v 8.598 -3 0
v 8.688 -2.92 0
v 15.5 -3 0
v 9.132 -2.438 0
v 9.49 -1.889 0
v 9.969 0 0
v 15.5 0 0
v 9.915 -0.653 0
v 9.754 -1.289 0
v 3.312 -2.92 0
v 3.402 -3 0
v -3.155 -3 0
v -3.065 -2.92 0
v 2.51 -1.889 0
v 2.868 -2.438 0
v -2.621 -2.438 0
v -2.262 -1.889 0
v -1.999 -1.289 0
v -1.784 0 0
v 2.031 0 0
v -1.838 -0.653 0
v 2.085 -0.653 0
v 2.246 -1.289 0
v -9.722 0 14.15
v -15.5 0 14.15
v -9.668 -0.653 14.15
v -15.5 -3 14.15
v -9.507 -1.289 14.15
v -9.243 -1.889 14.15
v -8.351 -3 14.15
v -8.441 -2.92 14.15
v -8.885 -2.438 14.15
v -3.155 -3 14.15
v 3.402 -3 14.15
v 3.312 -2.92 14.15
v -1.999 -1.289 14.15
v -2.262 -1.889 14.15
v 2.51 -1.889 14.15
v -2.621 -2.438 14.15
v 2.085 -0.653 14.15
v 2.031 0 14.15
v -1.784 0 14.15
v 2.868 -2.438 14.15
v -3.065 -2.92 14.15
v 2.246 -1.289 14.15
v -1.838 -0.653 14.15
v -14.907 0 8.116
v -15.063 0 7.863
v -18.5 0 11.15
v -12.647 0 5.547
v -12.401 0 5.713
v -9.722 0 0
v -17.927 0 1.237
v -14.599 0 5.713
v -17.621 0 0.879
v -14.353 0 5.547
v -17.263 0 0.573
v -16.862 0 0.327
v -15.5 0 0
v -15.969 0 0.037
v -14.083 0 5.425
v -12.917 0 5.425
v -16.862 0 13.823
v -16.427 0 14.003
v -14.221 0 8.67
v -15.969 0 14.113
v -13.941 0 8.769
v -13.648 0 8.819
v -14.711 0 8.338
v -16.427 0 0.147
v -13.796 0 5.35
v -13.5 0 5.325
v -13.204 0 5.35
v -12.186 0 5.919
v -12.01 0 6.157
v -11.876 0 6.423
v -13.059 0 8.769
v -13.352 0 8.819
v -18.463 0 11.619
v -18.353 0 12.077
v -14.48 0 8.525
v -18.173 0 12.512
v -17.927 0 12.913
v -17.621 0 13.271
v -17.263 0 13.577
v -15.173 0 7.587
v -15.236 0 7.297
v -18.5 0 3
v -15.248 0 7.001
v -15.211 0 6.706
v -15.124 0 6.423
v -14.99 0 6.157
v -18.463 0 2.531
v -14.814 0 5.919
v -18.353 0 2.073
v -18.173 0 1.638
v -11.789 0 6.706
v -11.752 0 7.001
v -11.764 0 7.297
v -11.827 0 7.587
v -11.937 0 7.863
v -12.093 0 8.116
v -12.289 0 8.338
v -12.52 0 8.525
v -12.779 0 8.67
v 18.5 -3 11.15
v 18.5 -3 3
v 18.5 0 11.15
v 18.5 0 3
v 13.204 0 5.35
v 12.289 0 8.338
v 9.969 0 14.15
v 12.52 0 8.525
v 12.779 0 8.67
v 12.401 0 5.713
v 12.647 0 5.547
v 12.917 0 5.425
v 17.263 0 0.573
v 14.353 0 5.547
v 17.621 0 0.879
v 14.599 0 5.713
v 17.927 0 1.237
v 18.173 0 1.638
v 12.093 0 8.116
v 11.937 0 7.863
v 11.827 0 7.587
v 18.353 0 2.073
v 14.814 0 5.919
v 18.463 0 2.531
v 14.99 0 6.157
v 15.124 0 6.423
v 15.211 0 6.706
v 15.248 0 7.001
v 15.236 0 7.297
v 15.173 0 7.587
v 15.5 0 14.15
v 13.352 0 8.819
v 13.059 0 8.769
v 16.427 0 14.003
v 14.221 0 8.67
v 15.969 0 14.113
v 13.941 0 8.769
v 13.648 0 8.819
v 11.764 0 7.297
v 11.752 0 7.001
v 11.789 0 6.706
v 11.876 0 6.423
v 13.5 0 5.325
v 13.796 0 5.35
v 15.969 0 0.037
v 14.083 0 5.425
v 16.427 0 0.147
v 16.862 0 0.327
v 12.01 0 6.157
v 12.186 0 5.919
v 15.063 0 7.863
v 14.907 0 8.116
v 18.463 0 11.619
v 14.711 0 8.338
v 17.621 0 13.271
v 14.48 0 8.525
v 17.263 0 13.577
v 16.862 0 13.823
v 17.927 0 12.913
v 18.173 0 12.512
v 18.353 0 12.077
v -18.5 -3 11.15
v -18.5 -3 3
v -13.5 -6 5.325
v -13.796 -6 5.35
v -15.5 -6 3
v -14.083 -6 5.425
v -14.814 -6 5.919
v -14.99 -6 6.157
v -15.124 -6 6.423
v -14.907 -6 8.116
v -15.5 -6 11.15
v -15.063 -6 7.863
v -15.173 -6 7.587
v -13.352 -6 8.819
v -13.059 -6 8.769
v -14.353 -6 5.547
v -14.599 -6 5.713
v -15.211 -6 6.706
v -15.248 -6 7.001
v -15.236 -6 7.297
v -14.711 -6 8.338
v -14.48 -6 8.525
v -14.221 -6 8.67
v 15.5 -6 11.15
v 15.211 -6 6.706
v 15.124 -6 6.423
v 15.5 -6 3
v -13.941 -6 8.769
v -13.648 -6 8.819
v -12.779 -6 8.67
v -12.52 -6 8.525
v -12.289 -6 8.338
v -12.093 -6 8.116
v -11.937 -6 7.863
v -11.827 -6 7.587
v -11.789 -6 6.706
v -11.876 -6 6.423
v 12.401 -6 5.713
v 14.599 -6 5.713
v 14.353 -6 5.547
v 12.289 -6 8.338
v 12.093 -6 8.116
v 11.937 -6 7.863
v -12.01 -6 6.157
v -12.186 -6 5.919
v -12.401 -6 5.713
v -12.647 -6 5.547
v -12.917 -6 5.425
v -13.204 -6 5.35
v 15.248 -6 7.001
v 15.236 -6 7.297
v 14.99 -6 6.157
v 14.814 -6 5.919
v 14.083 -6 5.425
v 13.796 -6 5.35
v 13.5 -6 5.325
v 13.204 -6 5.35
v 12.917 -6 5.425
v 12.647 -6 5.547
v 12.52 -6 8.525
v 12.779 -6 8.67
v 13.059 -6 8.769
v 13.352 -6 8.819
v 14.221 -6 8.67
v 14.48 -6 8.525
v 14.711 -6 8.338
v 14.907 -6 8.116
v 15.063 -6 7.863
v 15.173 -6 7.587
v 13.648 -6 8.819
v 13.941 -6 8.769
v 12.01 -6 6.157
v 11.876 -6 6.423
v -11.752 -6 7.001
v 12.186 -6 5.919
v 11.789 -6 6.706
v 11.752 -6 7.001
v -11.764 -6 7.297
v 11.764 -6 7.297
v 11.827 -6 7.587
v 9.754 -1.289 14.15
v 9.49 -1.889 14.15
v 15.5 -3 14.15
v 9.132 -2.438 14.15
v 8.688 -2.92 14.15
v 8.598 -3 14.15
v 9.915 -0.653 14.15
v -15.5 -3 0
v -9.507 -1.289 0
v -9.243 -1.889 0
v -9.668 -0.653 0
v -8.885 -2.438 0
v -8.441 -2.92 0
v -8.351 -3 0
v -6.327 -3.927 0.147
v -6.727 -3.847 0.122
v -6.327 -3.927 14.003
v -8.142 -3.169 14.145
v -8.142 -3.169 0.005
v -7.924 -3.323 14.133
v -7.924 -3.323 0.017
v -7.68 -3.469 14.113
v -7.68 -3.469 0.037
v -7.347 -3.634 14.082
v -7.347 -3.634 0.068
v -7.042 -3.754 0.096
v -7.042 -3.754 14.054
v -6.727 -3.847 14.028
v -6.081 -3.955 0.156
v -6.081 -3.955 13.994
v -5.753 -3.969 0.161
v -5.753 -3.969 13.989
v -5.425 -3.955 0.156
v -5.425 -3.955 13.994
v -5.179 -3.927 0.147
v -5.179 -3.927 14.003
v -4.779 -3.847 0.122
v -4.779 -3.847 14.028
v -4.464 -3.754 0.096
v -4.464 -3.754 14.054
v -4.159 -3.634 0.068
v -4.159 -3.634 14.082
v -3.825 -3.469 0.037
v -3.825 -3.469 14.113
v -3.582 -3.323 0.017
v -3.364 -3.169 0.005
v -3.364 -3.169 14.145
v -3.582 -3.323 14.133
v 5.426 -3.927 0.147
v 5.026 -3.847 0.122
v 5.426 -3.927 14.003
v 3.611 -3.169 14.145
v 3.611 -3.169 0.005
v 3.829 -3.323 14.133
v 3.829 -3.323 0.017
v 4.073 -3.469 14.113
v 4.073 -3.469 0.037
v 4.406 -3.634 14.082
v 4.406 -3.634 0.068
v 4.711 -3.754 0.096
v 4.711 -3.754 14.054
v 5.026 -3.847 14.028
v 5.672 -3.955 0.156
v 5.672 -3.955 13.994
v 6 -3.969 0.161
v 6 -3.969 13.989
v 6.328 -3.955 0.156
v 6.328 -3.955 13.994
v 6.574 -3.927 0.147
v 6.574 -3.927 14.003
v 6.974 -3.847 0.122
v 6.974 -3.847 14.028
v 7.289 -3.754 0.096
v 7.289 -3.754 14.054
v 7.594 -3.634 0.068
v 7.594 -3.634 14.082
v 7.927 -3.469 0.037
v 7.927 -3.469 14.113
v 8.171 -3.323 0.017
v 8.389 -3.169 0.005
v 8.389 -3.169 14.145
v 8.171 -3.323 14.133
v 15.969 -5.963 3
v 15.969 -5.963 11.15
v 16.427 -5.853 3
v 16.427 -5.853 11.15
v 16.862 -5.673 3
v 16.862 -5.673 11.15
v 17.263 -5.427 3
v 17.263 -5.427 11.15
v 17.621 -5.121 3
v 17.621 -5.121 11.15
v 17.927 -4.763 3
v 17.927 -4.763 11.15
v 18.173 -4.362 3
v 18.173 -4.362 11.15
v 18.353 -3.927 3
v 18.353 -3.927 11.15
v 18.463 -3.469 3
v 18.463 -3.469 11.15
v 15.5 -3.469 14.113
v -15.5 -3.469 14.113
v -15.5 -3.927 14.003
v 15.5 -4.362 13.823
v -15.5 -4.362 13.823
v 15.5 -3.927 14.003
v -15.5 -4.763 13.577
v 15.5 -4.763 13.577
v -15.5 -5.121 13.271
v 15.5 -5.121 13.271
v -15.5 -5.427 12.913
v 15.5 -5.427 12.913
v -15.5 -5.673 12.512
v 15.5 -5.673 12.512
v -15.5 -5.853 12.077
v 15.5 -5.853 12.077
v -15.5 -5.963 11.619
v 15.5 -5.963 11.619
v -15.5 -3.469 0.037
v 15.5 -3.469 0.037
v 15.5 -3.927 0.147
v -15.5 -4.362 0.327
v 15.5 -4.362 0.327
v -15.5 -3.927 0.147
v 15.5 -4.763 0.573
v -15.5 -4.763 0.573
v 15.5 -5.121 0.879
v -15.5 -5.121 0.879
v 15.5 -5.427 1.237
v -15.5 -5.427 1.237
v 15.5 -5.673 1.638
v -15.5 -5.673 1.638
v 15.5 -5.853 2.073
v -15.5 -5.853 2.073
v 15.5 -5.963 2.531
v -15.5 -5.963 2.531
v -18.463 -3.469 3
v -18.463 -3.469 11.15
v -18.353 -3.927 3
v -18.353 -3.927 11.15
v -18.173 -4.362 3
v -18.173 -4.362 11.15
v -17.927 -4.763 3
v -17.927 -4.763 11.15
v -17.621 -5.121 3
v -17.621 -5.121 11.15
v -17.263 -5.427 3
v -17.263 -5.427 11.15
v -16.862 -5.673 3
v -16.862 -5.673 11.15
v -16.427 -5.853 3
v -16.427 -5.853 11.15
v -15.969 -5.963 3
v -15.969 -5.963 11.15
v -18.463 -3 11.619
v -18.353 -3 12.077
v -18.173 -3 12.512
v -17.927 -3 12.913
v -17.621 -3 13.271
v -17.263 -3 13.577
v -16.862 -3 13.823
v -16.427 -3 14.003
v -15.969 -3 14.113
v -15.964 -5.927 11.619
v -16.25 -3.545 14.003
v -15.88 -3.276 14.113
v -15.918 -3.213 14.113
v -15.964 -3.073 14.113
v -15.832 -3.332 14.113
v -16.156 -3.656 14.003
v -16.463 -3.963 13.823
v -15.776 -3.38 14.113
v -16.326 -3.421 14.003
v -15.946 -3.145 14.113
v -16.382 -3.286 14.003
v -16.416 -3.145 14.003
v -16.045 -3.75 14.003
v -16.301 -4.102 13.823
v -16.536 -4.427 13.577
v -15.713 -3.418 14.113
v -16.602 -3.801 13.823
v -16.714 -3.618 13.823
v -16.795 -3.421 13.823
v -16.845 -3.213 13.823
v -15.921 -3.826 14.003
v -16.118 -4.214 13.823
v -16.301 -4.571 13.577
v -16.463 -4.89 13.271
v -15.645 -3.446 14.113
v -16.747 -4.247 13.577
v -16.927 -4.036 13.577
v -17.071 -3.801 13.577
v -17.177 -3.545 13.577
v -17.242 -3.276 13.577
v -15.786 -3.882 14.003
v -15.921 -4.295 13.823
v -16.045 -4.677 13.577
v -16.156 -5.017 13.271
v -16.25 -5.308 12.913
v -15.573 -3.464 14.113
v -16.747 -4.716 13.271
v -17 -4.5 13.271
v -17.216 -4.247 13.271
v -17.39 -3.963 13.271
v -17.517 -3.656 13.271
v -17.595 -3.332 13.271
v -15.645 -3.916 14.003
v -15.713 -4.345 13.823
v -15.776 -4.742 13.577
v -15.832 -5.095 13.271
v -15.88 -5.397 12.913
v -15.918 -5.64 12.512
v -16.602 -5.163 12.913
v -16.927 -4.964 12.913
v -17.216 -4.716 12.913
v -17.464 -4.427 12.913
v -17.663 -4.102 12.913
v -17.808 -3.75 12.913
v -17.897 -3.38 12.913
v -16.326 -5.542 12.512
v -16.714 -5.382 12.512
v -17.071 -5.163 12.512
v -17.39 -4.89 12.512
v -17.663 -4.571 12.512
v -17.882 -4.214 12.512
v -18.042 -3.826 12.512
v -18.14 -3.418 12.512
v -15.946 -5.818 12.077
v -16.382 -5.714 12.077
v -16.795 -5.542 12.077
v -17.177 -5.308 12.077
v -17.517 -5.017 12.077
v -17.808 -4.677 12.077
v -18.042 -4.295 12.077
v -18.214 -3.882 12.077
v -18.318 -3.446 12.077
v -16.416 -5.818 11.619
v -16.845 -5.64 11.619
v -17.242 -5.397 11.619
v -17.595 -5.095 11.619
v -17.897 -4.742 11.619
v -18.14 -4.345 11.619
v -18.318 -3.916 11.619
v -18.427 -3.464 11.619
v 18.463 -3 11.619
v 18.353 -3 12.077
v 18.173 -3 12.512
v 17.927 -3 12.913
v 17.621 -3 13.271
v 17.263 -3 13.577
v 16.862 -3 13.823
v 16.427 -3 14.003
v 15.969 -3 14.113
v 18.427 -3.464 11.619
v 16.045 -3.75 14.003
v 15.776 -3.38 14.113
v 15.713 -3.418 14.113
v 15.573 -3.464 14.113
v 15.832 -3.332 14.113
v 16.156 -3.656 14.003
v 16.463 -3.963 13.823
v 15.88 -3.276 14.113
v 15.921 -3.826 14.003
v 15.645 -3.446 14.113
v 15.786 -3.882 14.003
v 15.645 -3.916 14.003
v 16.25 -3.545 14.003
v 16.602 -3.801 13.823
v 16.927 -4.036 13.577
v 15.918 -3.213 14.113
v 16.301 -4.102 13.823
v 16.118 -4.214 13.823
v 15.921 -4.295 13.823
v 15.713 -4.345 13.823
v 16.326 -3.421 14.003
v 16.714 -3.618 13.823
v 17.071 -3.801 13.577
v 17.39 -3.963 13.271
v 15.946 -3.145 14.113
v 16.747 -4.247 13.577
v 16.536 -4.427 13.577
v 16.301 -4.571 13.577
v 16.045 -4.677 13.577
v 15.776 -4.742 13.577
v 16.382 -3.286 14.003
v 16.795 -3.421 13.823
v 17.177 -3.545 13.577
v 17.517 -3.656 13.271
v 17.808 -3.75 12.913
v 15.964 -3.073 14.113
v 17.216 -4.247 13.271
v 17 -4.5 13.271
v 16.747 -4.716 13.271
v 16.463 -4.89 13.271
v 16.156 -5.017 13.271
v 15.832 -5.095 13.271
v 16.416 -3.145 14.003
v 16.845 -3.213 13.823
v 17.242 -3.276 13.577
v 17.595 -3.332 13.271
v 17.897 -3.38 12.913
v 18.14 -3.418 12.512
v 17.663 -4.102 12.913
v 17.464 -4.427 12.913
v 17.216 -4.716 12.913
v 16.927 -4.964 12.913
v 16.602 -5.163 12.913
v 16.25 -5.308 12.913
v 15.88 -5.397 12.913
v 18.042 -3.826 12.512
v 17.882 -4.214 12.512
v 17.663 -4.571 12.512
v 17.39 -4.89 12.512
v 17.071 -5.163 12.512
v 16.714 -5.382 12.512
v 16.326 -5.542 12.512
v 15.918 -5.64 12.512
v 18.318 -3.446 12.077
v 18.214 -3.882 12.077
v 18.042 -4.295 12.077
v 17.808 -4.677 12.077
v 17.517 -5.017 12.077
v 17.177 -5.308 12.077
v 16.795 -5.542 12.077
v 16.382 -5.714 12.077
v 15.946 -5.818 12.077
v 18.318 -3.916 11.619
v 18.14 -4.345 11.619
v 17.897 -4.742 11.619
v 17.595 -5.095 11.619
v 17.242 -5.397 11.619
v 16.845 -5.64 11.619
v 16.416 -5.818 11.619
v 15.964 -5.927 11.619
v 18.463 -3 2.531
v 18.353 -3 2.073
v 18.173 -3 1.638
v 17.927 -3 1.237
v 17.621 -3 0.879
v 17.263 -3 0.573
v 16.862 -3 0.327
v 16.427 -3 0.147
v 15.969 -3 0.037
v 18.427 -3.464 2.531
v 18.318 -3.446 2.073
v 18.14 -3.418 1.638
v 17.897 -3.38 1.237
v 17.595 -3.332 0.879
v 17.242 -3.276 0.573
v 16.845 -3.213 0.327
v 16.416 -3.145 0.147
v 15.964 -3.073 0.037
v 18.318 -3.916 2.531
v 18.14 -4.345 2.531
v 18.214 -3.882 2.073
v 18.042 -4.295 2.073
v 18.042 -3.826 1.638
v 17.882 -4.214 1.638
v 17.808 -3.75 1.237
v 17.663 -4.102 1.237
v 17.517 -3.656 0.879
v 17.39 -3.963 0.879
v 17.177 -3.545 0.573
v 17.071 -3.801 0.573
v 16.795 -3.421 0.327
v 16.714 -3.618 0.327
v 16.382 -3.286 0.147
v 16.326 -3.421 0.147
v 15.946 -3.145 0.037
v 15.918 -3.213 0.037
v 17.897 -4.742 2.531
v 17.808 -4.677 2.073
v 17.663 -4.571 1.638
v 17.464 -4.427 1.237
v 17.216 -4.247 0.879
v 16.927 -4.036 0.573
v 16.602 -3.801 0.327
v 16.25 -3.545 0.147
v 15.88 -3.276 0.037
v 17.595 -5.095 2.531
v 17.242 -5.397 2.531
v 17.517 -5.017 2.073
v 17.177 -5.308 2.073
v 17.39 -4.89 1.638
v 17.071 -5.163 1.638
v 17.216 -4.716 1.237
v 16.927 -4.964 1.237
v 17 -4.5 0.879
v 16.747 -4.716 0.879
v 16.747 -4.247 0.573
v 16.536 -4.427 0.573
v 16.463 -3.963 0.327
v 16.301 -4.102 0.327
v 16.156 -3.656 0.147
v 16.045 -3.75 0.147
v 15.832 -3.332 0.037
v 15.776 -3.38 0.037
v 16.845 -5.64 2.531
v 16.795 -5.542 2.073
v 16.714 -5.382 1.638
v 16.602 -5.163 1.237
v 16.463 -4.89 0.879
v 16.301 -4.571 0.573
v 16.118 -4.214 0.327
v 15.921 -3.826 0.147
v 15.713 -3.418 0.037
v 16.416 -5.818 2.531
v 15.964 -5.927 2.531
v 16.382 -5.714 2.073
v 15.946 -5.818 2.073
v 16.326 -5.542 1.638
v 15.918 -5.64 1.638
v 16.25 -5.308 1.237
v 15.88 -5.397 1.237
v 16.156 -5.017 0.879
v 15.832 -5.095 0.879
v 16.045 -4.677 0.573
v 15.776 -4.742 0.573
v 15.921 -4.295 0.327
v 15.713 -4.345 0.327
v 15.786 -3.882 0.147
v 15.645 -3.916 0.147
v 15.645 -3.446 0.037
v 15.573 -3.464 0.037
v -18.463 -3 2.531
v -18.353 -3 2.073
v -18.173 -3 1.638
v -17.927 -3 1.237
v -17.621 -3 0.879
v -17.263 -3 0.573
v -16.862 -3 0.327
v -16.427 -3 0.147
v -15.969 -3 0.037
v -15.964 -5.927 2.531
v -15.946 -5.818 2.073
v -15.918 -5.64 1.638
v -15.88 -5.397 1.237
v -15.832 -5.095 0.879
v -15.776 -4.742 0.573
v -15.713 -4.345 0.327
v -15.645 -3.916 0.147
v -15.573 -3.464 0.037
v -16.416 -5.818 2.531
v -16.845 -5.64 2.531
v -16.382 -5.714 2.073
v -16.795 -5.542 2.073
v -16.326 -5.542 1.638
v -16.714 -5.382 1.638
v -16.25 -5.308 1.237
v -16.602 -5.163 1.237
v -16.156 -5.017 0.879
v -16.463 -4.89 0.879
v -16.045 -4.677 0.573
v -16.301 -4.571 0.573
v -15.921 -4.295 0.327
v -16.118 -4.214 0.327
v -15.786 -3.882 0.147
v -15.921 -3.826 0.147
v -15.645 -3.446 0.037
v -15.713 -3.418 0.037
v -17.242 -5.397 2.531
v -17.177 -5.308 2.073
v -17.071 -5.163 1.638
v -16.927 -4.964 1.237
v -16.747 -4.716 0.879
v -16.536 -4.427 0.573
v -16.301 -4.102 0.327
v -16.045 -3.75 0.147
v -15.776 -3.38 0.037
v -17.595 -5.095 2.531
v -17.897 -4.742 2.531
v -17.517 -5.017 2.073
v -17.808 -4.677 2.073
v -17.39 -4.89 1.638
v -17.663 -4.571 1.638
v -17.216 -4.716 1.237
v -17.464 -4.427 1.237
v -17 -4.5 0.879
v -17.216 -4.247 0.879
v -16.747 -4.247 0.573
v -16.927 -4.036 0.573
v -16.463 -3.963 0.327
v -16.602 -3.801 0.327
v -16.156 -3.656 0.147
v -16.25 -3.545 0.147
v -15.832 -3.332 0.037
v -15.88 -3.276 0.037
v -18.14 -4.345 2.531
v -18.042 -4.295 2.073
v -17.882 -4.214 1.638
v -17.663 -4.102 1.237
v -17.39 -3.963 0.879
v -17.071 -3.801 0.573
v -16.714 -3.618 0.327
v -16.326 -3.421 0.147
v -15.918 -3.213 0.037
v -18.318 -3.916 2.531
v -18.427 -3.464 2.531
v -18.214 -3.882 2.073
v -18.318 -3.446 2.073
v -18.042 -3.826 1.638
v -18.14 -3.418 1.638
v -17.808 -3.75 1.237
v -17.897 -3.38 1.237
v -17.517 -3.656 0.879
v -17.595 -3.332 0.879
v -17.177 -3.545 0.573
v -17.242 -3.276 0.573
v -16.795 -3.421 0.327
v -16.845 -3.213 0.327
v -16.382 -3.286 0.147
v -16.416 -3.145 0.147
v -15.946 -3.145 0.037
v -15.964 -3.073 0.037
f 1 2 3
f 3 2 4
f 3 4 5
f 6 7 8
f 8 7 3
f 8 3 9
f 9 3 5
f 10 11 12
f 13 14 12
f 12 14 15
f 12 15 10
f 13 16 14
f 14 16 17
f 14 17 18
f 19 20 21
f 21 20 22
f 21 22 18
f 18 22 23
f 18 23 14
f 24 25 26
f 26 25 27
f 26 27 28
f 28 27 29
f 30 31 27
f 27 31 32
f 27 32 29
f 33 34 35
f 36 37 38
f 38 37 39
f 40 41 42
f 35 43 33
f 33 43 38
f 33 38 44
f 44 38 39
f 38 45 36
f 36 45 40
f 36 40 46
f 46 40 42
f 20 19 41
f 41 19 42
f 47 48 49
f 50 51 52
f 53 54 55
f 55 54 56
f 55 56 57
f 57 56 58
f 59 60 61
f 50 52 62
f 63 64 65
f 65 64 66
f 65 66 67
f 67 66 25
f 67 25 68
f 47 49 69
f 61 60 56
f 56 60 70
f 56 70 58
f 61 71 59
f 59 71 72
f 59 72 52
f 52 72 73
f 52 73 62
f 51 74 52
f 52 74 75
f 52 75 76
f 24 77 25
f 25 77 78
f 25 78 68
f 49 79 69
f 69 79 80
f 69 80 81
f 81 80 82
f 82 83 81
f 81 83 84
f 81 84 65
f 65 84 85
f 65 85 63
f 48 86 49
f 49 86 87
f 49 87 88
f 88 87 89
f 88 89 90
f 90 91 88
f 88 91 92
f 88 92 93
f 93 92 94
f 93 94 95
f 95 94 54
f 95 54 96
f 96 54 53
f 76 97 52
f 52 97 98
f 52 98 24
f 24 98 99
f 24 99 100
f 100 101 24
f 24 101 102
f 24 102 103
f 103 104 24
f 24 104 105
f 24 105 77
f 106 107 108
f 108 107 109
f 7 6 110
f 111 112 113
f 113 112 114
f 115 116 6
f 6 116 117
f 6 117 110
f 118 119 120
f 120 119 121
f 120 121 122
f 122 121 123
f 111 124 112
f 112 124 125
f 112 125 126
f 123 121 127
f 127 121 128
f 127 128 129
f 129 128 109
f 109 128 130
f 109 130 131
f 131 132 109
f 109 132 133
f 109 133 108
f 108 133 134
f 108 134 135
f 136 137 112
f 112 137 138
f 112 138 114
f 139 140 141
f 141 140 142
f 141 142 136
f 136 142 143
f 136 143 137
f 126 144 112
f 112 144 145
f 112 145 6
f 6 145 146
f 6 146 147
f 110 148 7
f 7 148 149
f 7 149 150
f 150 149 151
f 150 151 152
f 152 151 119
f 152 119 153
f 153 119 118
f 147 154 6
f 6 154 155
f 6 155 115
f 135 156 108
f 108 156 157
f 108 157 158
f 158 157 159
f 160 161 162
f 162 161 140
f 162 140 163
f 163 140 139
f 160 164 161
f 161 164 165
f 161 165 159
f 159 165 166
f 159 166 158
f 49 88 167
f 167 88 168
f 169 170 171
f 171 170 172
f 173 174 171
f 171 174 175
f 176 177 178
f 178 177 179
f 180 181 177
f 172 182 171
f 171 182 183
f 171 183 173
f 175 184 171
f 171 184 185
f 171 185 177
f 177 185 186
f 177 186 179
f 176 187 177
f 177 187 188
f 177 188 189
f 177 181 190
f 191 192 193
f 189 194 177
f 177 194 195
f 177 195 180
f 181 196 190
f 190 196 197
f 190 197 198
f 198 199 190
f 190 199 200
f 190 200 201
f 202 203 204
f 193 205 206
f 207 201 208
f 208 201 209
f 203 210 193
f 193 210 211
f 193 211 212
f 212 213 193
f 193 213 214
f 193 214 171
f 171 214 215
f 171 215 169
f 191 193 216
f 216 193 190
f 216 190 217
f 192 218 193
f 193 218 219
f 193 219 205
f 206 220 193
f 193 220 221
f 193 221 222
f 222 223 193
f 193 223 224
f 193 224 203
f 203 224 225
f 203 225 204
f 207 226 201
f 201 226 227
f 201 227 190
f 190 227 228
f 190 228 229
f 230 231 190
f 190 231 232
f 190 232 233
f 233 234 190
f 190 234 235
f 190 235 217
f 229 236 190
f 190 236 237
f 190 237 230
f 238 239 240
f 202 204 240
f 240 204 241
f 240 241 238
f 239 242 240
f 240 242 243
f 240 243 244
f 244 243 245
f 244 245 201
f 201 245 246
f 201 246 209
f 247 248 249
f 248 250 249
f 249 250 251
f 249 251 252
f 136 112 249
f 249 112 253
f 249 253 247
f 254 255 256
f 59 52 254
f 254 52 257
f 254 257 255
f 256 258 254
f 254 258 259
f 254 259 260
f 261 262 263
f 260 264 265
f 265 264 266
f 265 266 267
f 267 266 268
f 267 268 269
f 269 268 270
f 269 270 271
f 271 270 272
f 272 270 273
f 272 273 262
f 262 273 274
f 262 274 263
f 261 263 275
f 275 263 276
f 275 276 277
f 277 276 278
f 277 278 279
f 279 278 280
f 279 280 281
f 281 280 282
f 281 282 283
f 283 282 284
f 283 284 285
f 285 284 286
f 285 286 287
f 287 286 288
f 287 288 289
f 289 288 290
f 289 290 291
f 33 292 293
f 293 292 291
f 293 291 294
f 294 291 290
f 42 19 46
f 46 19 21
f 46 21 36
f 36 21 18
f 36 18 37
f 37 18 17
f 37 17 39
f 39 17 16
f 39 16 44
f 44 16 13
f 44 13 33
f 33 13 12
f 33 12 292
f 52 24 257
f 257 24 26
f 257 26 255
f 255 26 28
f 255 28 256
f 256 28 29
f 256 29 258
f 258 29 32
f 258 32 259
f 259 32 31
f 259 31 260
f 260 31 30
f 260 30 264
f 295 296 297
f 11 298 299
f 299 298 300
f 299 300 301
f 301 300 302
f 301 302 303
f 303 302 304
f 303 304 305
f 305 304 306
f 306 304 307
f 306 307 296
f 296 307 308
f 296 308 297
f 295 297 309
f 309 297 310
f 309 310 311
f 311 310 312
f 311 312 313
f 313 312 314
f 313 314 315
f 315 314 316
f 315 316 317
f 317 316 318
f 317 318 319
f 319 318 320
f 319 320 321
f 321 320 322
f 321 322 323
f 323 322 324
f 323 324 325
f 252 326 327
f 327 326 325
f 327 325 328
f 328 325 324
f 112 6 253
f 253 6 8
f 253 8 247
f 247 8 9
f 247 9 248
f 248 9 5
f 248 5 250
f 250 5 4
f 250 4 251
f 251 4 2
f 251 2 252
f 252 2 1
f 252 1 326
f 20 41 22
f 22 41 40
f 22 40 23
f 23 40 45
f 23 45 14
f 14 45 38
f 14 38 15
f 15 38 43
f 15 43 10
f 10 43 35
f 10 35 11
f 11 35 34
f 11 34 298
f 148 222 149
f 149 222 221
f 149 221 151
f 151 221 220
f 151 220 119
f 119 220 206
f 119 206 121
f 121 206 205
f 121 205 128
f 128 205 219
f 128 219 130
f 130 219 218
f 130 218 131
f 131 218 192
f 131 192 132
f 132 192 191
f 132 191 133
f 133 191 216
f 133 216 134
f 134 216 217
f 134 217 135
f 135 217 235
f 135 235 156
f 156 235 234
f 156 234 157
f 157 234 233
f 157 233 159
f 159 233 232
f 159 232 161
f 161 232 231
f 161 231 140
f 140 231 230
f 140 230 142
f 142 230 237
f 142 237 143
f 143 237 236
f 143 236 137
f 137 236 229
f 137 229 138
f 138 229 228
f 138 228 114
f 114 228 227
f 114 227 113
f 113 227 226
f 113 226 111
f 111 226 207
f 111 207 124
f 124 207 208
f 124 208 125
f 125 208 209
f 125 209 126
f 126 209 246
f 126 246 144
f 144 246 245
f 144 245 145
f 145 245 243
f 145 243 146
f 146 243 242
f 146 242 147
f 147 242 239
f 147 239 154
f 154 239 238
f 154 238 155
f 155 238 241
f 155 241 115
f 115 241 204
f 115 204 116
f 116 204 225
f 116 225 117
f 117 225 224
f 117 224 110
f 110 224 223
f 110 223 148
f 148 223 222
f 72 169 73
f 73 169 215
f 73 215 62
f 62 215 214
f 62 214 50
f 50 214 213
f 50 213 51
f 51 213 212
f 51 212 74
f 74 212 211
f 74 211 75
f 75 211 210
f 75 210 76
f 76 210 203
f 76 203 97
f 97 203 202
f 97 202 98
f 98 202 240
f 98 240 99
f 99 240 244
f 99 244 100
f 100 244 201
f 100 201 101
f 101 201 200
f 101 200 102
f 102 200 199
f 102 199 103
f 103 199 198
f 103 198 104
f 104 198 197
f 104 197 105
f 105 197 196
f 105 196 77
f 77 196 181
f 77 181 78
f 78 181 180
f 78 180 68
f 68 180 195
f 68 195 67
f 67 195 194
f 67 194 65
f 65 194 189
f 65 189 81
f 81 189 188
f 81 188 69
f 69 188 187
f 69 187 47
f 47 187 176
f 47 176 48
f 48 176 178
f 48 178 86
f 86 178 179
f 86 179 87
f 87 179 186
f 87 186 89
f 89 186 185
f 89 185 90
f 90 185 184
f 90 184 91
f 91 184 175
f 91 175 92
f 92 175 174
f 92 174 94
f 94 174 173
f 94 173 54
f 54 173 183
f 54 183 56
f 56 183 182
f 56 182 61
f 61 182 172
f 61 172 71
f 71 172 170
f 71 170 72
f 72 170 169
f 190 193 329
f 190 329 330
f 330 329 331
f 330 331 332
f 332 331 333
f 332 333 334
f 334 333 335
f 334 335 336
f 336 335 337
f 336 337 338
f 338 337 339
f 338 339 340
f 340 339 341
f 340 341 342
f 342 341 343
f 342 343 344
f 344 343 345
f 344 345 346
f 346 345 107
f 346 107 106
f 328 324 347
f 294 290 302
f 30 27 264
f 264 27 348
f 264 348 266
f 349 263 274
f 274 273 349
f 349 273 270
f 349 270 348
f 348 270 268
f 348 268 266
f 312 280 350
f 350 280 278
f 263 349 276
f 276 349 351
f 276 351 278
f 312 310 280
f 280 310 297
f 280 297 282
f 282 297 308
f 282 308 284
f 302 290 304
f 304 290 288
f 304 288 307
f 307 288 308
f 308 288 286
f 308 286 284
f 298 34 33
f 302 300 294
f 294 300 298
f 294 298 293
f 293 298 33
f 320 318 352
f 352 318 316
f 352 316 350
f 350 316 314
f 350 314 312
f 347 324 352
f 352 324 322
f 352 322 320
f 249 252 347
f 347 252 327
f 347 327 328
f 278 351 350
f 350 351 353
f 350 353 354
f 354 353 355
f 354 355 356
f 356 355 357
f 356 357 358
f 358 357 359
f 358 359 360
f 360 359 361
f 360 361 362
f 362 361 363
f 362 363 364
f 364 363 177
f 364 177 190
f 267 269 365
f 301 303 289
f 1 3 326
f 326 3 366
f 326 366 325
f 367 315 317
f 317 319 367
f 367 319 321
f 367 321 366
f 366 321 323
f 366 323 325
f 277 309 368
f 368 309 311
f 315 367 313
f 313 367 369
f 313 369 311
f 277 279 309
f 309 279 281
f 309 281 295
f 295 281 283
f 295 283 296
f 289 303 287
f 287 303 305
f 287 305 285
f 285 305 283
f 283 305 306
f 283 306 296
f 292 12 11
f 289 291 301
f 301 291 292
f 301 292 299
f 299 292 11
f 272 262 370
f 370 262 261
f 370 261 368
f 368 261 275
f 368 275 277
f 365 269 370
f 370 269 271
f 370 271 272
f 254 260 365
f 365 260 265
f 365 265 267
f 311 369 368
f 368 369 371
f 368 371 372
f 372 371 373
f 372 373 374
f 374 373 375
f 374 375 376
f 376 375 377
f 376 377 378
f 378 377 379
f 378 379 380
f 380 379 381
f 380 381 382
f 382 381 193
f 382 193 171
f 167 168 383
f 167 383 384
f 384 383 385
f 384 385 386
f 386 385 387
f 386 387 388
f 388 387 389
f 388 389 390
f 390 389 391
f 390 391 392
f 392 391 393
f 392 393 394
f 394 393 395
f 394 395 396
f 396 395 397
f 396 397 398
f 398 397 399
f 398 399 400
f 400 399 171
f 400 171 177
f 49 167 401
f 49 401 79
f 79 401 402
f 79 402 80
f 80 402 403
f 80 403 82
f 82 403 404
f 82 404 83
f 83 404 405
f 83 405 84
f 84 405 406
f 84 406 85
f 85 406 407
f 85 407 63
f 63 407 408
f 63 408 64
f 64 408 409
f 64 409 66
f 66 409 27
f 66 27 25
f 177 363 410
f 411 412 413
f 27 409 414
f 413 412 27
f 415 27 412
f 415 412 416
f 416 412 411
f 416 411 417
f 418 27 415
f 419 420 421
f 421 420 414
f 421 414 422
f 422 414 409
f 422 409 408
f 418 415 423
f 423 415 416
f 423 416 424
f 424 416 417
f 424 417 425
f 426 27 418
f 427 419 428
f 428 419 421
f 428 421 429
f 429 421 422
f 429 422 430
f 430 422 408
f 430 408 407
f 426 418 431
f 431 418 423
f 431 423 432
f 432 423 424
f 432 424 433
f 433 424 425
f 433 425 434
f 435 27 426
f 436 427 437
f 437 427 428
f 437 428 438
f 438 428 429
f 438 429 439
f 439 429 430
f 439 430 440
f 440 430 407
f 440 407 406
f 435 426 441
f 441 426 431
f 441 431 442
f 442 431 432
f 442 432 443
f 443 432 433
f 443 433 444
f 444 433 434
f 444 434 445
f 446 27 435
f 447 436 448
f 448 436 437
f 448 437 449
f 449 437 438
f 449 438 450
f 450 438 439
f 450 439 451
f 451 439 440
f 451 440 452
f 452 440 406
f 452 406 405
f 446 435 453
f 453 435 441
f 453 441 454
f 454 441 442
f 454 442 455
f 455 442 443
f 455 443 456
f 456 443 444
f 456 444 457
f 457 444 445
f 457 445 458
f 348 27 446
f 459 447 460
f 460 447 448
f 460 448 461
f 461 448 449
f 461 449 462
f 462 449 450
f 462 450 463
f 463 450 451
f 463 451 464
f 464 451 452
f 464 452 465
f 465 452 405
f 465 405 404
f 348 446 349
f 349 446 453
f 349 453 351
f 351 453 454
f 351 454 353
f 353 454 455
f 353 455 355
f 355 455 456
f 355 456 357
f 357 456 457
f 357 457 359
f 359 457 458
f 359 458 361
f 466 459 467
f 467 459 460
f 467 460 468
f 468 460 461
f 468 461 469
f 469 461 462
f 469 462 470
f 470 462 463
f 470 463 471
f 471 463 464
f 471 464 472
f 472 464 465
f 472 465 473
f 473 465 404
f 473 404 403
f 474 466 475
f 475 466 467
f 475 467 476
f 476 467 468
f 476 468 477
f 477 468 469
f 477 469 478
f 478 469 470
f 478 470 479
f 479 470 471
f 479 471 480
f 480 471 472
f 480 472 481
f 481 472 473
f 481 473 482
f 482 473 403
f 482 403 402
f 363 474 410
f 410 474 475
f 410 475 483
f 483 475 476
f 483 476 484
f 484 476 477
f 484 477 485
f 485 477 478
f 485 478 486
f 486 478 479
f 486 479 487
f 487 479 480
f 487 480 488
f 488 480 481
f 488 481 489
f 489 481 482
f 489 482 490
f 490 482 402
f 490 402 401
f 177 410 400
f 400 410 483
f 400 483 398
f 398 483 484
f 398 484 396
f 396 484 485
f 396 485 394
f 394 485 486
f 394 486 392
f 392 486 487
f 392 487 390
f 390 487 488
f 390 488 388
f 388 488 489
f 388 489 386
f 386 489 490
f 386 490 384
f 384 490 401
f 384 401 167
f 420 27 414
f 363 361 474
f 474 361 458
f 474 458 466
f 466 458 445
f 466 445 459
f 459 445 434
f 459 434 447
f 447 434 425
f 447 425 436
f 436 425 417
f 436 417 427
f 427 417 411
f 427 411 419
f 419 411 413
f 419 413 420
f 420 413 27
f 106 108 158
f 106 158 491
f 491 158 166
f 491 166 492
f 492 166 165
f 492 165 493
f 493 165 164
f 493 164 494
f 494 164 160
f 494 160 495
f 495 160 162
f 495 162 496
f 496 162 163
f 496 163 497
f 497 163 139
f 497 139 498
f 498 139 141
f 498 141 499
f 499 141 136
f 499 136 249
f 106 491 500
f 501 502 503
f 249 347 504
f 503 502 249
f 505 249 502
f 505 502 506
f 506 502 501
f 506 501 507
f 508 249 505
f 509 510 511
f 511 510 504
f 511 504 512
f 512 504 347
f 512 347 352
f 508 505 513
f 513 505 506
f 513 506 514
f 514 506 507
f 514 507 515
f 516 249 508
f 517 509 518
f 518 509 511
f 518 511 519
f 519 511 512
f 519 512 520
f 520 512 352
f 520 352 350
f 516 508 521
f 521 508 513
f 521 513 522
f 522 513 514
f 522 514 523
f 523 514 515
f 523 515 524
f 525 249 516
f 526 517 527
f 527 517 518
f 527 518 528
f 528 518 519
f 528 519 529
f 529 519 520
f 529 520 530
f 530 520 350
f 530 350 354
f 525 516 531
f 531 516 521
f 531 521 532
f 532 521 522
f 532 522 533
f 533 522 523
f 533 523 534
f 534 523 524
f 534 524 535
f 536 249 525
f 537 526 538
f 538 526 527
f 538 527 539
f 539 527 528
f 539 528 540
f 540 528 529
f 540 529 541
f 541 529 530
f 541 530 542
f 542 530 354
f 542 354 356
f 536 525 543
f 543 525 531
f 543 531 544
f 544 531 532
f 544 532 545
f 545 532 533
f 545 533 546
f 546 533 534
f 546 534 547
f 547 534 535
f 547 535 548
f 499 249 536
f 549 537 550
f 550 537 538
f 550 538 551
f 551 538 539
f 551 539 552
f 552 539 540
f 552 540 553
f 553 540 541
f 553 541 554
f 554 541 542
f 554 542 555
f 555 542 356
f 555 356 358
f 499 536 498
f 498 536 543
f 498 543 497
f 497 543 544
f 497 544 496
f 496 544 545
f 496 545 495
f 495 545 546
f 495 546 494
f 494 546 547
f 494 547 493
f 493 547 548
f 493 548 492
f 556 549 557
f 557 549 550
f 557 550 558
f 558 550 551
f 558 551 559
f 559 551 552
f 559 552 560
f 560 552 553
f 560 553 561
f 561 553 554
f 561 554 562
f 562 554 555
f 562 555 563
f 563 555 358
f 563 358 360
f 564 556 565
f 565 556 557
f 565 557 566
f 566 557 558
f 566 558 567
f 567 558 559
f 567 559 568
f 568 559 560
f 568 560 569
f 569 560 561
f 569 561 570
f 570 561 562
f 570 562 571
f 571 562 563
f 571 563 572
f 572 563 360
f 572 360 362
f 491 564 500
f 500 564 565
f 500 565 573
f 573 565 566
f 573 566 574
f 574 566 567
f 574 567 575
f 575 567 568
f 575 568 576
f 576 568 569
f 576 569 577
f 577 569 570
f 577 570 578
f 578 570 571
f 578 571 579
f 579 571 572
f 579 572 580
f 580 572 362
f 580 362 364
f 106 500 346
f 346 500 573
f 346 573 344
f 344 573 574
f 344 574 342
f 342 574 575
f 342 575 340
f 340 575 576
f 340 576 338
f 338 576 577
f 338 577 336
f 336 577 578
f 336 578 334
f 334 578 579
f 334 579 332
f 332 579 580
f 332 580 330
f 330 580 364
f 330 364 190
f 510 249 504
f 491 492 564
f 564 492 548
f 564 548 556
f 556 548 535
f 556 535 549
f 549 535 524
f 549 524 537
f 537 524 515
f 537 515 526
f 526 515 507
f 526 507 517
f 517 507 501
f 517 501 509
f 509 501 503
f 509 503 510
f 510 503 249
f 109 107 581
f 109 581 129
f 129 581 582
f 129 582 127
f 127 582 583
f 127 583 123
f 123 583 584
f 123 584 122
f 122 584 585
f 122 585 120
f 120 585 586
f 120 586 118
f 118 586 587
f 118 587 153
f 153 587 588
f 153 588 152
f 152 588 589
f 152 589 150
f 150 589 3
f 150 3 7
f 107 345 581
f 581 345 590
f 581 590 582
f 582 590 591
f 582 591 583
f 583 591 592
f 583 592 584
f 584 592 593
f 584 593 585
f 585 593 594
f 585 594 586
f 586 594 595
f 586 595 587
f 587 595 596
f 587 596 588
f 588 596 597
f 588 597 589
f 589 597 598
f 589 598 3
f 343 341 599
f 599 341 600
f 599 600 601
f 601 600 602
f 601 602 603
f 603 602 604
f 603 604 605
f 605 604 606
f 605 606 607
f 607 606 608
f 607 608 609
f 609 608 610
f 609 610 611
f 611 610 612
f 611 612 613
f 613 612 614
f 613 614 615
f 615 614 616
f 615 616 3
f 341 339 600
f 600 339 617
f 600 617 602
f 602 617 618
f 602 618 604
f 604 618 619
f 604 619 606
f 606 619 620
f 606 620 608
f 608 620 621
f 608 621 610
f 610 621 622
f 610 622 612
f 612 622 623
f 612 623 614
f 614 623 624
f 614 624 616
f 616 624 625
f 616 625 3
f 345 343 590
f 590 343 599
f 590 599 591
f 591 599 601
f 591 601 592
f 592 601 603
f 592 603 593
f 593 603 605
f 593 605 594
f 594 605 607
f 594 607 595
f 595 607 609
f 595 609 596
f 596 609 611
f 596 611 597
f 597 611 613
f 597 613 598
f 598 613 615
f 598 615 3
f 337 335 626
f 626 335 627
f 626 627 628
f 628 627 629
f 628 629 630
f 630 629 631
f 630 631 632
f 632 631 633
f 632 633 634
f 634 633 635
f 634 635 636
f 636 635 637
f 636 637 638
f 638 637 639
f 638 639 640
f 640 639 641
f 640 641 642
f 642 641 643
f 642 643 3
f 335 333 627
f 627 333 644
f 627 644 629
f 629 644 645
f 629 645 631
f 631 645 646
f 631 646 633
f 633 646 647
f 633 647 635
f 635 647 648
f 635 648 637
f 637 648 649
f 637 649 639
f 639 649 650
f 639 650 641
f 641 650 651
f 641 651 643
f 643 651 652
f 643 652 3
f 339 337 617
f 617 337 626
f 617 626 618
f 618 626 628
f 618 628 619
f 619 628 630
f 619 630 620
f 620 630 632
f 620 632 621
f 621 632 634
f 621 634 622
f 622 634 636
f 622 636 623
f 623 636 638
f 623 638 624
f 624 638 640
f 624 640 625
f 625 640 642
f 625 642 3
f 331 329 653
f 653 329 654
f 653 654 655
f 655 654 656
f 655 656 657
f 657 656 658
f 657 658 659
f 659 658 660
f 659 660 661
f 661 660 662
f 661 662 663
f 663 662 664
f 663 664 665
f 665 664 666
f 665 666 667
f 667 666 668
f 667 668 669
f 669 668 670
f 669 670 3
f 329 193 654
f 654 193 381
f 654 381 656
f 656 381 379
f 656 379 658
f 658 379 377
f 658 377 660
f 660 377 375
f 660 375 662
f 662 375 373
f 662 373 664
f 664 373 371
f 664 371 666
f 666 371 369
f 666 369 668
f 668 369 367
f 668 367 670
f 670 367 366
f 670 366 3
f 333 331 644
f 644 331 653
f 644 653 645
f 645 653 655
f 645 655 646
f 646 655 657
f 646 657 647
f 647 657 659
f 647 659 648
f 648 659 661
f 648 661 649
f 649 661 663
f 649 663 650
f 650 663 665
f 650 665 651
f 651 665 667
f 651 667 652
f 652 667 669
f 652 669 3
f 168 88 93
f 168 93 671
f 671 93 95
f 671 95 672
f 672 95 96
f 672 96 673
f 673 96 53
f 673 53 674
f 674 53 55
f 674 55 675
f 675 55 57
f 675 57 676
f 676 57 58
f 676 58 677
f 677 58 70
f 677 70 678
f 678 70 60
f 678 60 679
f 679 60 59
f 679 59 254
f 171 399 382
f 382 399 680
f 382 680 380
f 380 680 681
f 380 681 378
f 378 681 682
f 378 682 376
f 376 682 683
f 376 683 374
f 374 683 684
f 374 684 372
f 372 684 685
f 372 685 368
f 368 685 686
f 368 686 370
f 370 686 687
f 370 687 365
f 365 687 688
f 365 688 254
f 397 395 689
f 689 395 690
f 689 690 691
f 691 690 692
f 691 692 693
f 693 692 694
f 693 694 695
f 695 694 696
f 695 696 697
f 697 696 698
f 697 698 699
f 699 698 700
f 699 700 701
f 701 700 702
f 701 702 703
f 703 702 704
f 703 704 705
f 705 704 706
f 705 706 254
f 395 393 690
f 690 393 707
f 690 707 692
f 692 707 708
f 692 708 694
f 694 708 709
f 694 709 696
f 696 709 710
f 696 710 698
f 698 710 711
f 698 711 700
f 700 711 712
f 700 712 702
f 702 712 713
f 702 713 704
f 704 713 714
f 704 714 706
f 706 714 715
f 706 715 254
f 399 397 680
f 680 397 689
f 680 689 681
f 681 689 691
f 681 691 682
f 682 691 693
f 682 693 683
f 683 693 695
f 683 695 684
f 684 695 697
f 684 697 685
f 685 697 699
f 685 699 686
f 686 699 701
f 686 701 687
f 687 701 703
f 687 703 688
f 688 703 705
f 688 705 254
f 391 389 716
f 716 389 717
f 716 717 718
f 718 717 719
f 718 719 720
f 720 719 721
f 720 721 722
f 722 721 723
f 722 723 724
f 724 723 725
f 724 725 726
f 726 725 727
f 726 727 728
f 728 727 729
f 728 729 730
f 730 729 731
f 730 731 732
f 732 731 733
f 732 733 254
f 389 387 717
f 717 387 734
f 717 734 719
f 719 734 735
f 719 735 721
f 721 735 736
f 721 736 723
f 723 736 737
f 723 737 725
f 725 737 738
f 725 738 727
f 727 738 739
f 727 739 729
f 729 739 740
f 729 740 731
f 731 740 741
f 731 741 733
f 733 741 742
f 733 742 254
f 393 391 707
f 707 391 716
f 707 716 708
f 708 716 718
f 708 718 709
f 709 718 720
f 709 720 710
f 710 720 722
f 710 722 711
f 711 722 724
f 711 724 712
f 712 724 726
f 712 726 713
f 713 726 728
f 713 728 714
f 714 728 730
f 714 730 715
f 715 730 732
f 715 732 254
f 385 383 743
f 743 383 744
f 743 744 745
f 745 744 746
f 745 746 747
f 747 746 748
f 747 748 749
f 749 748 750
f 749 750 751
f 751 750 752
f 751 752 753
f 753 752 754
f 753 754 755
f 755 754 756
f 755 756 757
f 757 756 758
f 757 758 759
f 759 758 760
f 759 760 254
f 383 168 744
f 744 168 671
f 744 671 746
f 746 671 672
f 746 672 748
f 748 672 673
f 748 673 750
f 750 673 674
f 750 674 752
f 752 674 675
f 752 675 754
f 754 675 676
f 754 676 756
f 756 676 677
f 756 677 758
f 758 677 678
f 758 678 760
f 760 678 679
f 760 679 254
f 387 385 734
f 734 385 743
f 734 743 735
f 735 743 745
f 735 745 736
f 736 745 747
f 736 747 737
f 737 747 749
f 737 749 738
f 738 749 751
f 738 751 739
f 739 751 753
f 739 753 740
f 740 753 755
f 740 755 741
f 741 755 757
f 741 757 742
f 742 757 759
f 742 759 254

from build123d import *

# Parameters (mm, degrees)
ESBO_O1_W                = 37
ESBO_O1_H                = 6
RESSALTO_EXTRUS_O1_DEPTH = 14.15
ESBO_O2_R                = 3.96875
CORTE_EXTRUS_O1_DEPTH    = 25.051455257
ESBO_O3_R                = 1.75
CORTE_EXTRUS_O2_DEPTH    = 13
FILETE2_R                = 3
FILETE3_R                = 3


with BuildPart() as part:
    # Esboço1 → Ressalto-extrusão1 (new body)
    with BuildSketch(Plane.XY):
        with Locations((0, -3)):
            Rectangle(ESBO_O1_W, ESBO_O1_H)
    extrude(amount=RESSALTO_EXTRUS_O1_DEPTH)

    # Esboço2 → Corte-extrusão1 (cut, through all)
    with BuildSketch(Plane(origin=(0, 0, 0), x_dir=(-1, 0, 0), z_dir=(0, 0, -1))):
        with Locations((-6, 0)):
            Circle(ESBO_O2_R)
        with Locations((5.752883735, 0)):
            Circle(ESBO_O2_R)
    extrude(amount=-CORTE_EXTRUS_O1_DEPTH, mode=Mode.SUBTRACT)

    # Esboço3 → Corte-extrusão2 (cut)
    with BuildSketch(Plane.XZ.offset(6)):
        with Locations(Location((-13.5, 7.075, 0), (0, 0, 270))):
            Circle(ESBO_O3_R)
        with Locations(Location((13.5, 7.075, 0), (0, 0, 270))):
            Circle(ESBO_O3_R)
    extrude(amount=-CORTE_EXTRUS_O2_DEPTH, mode=Mode.SUBTRACT)

    # Filete2
    # the kernel refuses this fillet: 3 mm, written as the material it takes off along each edge
    with BuildSketch(Plane(origin=(-26, -6, 0), x_dir=(0, 1, 0), z_dir=(1, 0, 0))) as filete2_piece_1:
        with BuildLine():
            CenterArc((FILETE2_R, FILETE2_R), FILETE2_R, 180, 90)
            Line((0, FILETE2_R), (0, 0))
            Line((0, 0), (FILETE2_R, 0))
        make_face()
    extrude(amount=52, mode=Mode.SUBTRACT)
    with BuildSketch(Plane(origin=(-26, -6, 14.15), x_dir=(0, 1, 0), z_dir=(1, 0, 0))) as filete2_piece_2:
        with BuildLine():
            CenterArc((FILETE2_R, -FILETE2_R), FILETE2_R, 90, 90)
            Line((0, -FILETE2_R), (0, 0))
            Line((0, 0), (FILETE2_R, 0))
        make_face()
    extrude(amount=52, mode=Mode.SUBTRACT)
    with BuildSketch(Plane(origin=(-18.5, -6, -7.5), x_dir=(1, 0, 0), z_dir=(0, 0, 1)), Plane(origin=(18.5, -6, -7.5), x_dir=(0, 1, 0), z_dir=(0, 0, 1))) as filete2_piece_3:
        with BuildLine():
            CenterArc((FILETE2_R, FILETE2_R), FILETE2_R, 180, 90)
            Line((0, FILETE2_R), (0, 0))
            Line((0, 0), (FILETE2_R, 0))
        make_face()
    extrude(amount=29.15, mode=Mode.SUBTRACT)

    # Filete3
    # the kernel refuses this fillet: 3 mm, written as the material it takes off along each edge
    with BuildSketch(Plane(origin=(15.5, -3, 11.15), x_dir=(0, 0, 1), z_dir=(1, 0, 0))) as filete3_piece_1_section:
        Polygon((0, 0), (FILETE3_R, 0), (FILETE3_R, FILETE3_R), (0, FILETE3_R), align=None)
    filete3_piece_1 = extrude(amount=FILETE3_R, mode=Mode.PRIVATE)
    filete3_piece_1 = filete3_piece_1 - Plane(origin=(15.5, -3, 11.15), x_dir=(0, 0.7071067811865475, -0.7071067811865475), z_dir=(1, 0, 0)) * Sphere(FILETE3_R, mode=Mode.PRIVATE)
    add(filete3_piece_1, mode=Mode.SUBTRACT)
    with BuildSketch(Plane(origin=(15.5, -3, 3), x_dir=(1, 0, 0), z_dir=(0, 0, -1))) as filete3_piece_2_section:
        Polygon((0, 0), (FILETE3_R, 0), (FILETE3_R, FILETE3_R), (0, FILETE3_R), align=None)
    filete3_piece_2 = extrude(amount=FILETE3_R, mode=Mode.PRIVATE)
    filete3_piece_2 = filete3_piece_2 - Plane(origin=(15.5, -3, 3), x_dir=(-0.7071067811865472, 0.7071067811865477, 0), z_dir=(0, 0, -1)) * Sphere(FILETE3_R, mode=Mode.PRIVATE)
    add(filete3_piece_2, mode=Mode.SUBTRACT)
    with BuildSketch(Plane(origin=(-15.5, -3, 11.15), x_dir=(-1, 0, 0), z_dir=(0, 0, 1))) as filete3_piece_3_section:
        Polygon((0, 0), (FILETE3_R, 0), (FILETE3_R, FILETE3_R), (0, FILETE3_R), align=None)
    filete3_piece_3 = extrude(amount=FILETE3_R, mode=Mode.PRIVATE)
    filete3_piece_3 = filete3_piece_3 - Plane(origin=(-15.5, -3, 11.15), x_dir=(0.7071067811865472, 0.7071067811865477, 0), z_dir=(0, 0, 1)) * Sphere(FILETE3_R, mode=Mode.PRIVATE)
    add(filete3_piece_3, mode=Mode.SUBTRACT)
    with BuildSketch(Plane(origin=(-15.5, -3, 3), x_dir=(-1, 0, 0), z_dir=(0, 0, -1))) as filete3_piece_4_section:
        Polygon((0, 0), (FILETE3_R, 0), (FILETE3_R, -FILETE3_R), (0, -FILETE3_R), align=None)
    filete3_piece_4 = extrude(amount=FILETE3_R, mode=Mode.PRIVATE)
    filete3_piece_4 = filete3_piece_4 - Plane(origin=(-15.5, -3, 3), x_dir=(0.7071067811865472, 0.7071067811865477, 0), z_dir=(0, 0, -1)) * Sphere(FILETE3_R, mode=Mode.PRIVATE)
    add(filete3_piece_4, mode=Mode.SUBTRACT)
    with BuildSketch(Plane(origin=(18.5, -3, 14.15), x_dir=(0, 0, -1), z_dir=(0, 1, 0)), Plane(origin=(-18.5, 7.5, 0), x_dir=(1, 0, 0), z_dir=(0, -1, 0)), Plane(origin=(18.5, -3, 0), x_dir=(-1, 0, 0), z_dir=(0, 1, 0))) as filete3_piece_5:
        with BuildLine():
            CenterArc((FILETE3_R, FILETE3_R), FILETE3_R, 180, 90)
            Line((0, FILETE3_R), (0, 0))
            Line((0, 0), (FILETE3_R, 0))
        make_face()
    extrude(amount=10.5, mode=Mode.SUBTRACT)
    with BuildSketch(Plane(origin=(-18.5, 7.5, 14.15), x_dir=(1, 0, 0), z_dir=(0, -1, 0))) as filete3_piece_6:
        with BuildLine():
            CenterArc((FILETE3_R, -FILETE3_R), FILETE3_R, 90, 90)
            Line((0, -FILETE3_R), (0, 0))
            Line((0, 0), (FILETE3_R, 0))
        make_face()
    extrude(amount=10.5, mode=Mode.SUBTRACT)


solid = part.part
